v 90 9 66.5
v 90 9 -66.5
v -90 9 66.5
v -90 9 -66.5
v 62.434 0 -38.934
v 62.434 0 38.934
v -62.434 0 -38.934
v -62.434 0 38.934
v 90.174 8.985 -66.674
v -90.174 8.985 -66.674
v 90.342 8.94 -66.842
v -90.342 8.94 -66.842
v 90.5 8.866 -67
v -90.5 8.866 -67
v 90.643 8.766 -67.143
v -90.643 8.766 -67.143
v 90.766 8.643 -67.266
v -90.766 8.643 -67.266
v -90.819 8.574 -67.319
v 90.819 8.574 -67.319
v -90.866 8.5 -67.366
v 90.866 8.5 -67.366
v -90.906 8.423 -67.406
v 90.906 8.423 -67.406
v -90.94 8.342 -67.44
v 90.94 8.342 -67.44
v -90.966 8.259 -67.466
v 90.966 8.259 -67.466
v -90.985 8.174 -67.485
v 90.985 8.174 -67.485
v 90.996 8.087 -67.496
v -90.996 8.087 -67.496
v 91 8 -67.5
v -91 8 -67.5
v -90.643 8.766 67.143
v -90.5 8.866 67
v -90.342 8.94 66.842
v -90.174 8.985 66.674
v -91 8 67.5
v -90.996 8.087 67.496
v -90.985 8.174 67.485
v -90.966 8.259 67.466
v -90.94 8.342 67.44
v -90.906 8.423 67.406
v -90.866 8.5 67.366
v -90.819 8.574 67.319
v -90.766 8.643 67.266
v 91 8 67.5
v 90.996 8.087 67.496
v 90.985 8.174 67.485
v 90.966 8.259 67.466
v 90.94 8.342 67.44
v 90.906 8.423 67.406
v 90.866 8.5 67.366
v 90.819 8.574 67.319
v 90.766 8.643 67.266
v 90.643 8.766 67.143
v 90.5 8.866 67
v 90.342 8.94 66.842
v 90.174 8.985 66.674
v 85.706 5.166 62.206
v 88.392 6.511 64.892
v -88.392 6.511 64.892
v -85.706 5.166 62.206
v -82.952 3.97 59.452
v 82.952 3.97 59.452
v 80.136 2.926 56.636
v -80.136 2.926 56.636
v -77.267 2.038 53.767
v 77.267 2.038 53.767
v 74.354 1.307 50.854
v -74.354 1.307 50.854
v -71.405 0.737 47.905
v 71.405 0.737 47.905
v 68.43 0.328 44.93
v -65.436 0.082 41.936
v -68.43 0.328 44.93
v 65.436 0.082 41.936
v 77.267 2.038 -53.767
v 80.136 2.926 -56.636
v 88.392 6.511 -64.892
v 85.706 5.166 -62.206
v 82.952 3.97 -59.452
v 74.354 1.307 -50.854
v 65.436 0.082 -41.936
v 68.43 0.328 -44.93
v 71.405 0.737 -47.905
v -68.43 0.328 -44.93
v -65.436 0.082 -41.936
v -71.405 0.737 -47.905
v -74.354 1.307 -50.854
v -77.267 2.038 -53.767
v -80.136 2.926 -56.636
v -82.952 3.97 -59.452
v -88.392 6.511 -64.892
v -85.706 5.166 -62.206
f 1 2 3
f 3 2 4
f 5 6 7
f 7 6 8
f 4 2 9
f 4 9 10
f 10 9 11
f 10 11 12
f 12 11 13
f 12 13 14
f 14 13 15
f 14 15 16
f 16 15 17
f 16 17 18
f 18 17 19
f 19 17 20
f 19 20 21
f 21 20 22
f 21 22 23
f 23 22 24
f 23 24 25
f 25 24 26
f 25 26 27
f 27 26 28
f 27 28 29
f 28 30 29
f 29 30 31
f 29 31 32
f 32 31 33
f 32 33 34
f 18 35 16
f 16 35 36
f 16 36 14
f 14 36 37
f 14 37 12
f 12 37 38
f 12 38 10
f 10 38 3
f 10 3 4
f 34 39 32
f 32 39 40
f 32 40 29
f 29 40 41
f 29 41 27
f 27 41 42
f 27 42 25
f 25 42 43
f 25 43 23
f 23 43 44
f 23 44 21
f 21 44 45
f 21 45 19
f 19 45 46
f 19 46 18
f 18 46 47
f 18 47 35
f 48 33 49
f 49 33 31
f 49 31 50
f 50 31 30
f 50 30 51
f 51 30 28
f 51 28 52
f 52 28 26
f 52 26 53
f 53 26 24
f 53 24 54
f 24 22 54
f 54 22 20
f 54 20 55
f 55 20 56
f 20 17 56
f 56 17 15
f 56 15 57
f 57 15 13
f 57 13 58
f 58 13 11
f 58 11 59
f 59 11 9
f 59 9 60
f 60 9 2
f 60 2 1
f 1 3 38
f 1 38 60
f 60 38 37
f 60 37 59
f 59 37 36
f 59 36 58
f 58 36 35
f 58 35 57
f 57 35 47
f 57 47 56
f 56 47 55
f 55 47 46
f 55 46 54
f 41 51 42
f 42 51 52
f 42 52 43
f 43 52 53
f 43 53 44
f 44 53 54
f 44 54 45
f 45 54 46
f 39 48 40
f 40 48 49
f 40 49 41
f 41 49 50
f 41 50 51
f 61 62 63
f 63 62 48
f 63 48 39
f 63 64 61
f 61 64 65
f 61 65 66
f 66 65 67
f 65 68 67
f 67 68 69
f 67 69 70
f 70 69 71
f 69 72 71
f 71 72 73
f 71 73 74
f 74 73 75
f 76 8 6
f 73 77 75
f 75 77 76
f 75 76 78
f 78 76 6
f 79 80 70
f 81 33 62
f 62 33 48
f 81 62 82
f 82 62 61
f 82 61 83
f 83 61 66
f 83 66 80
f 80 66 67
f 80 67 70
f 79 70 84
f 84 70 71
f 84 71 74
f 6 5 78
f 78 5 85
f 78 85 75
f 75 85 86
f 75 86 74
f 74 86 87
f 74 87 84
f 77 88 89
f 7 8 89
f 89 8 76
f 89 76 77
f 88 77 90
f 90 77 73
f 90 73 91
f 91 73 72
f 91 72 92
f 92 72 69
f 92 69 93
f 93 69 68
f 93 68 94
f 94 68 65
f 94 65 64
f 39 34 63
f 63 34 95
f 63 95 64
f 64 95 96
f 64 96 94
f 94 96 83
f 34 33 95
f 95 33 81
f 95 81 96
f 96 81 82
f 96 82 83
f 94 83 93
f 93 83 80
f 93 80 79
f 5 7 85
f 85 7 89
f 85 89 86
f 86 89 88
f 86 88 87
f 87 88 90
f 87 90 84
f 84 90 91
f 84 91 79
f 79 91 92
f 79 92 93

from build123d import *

# Parameters (mm, degrees)
SKETCH1_W           = 182
SKETCH1_H           = 135
BOSS_EXTRUDE1_DEPTH = 9
FILLET4_R           = 1
FILLET5_R           = 55


with BuildPart() as part:
    # Sketch1 → Boss-Extrude1 (new body)
    with BuildSketch(Plane(origin=(0, 0, 0), x_dir=(1, 0, 0), z_dir=(0, 1, 0))):
        Rectangle(SKETCH1_W, SKETCH1_H)
    extrude(amount=BOSS_EXTRUDE1_DEPTH)

    # Fillet4
    fillet4_edges = [part.edges().sort_by_distance(p)[0] for p in [
        (-91, 9, 0),
        (0, 9, 67.5),
        (91, 9, 0),
        (0, 9, -67.5),
    ]]
    fillet(fillet4_edges, radius=FILLET4_R)

    # Fillet5
    # the kernel refuses this fillet: 55 mm, written as the material it takes off along each edge
    with BuildSketch(Plane(origin=(162.414284285, 0, -67.5), x_dir=(0, 0, 1), z_dir=(-1, 0, 0))) as fillet5_piece_1:
        with BuildLine():
            CenterArc((28.565713714, 55), FILLET5_R, 238.709554786, 31.290445214)
            Line((0, 8), (0, 0))
            Line((0, 0), (28.565713714, 0))
        make_face()
    extrude(amount=324.828568571, mode=Mode.SUBTRACT)
    with BuildSketch(Plane(origin=(-91, 0, -138.914284285), x_dir=(0, 1, 0), z_dir=(0, 0, 1))) as fillet5_piece_2:
        with BuildLine():
            CenterArc((55, -28.565713714), FILLET5_R, 148.709554786, 31.290445214)
            Line((0, -28.565713714), (0, 0))
            Line((0, 0), (8, 0))
        make_face()
    extrude(amount=277.828568571, mode=Mode.SUBTRACT)
    with BuildSketch(Plane(origin=(-162.414284285, 0, 67.5), x_dir=(0, 1, 0), z_dir=(1, 0, 0))) as fillet5_piece_3:
        with BuildLine():
            CenterArc((55, -28.565713714), FILLET5_R, 148.709554786, 31.290445214)
            Line((0, -28.565713714), (0, 0))
            Line((0, 0), (8, 0))
        make_face()
    extrude(amount=324.828568571, mode=Mode.SUBTRACT)
    with BuildSketch(Plane(origin=(91, 0, 138.914284285), x_dir=(-1, 0, 0), z_dir=(0, 0, -1))) as fillet5_piece_4:
        with BuildLine():
            CenterArc((28.565713714, 55), FILLET5_R, 238.709554786, 31.290445214)
            Line((0, 8), (0, 0))
            Line((0, 0), (28.565713714, 0))
        make_face()
    extrude(amount=277.828568571, mode=Mode.SUBTRACT)


solid = part.part
